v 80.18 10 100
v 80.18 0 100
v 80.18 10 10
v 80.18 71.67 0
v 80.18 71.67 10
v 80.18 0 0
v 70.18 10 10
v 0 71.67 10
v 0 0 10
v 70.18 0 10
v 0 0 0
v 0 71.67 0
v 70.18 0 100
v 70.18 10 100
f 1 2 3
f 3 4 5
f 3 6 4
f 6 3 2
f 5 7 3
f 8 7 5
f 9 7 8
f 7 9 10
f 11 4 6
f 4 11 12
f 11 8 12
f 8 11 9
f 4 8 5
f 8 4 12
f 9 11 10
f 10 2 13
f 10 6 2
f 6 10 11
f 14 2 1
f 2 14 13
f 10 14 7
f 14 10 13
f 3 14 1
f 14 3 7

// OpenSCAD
/* doodle-meta {"version":1,"parameters":{"width":{"label":"Overall width","description":"Changes the body width","unit":"mm","feature":"body_width"},"depth":{"label":"Overall depth","description":"Changes the base depth","unit":"mm","feature":"body_depth"},"height":{"label":"Overall height","description":"Changes the panel height","unit":"mm","feature":"body_height"},"thickness":{"label":"Material thickness","description":"Thickness of the L-profile walls","unit":"mm","feature":"wall_thickness"}},"features":{"body_width":{"kind":"dimension","axis":"x","label":"Overall width"},"body_depth":{"kind":"dimension","axis":"y","label":"Overall depth"},"body_height":{"kind":"dimension","axis":"z","label":"Overall height"},"wall_thickness":{"kind":"dimension","axis":"x","label":"Material thickness"}}} */

// Top-level parameters (allowlist)
width = 80.18;
depth = 71.67;
height = 100.0;
thickness = 10.0;

// Derived sizes (not editable)
eps = 0.01;
panel_x_start = width - thickness;
base_z_end = thickness;

// Hole parameters derived from front view proportions
// Front view maps: X = u * width, Z = (1-v) * height
// Hole 1 (Top Left): center u=0.2724, v=0.1968, size u=0.2988, v=0.1968
h1_cx = 0.2724 * width;
h1_cz = (1 - 0.1968) * height;
h1_w = 0.2988 * width;
h1_h = 0.1968 * height;

// Hole 2 (Center Vertical): center u=0.5362, v=0.4268, size u=0.1173, v=0.3135
h2_cx = 0.5362 * width;
h2_cz = (1 - 0.4268) * height;
h2_w = 0.1173 * width;
h2_h = 0.3135 * height;

// Hole 3 (Bottom Left): center u=0.3269, v=0.6087, size u=0.1732, v=0.4027
h3_cx = 0.3269 * width;
h3_cz = (1 - 0.6087) * height;
h3_w = 0.1732 * width;
h3_h = 0.4027 * height;

// Hole 4 (Bottom Right): center u=0.7472, v=0.6087, size u=0.1369, v=0.3891
h4_cx = 0.7472 * width;
h4_cz = (1 - 0.6087) * height;
h4_w = 0.1369 * width;
h4_h = 0.3891 * height;

// Main design
difference() {
    // Positive Body: L-shape
    // Base: extends from Y=0 to Y=depth, Z=0 to Z=thickness, X=0 to X=width
    // Panel: extends from Y=0 to Y=thickness, Z=0 to Z=height, X=panel_x_start to X=width
    
    // Union of base and panel
    union() {
        // Base
        cube([width, depth, thickness]);
        
        // Panel
        translate([panel_x_start, 0, 0])
            cube([thickness, thickness, height]);
    }
    
    // Subtractive Cutters for holes in the panel
    // The panel is at X in [panel_x_start, width], Y in [0, thickness], Z in [0, height]
    // Holes cut through the panel thickness (along Y axis)
    
    // Hole 1: Top Left
    translate([h1_cx, 0, h1_cz])
        rotate([90, 0, 0])
            cube([h1_w, thickness + 2*eps, h1_h], center=true);
            
    // Hole 2: Center Vertical
    translate([h2_cx, 0, h2_cz])
        rotate([90, 0, 0])
            cube([h2_w, thickness + 2*eps, h2_h], center=true);
            
    // Hole 3: Bottom Left
    translate([h3_cx, 0, h3_cz])
        rotate([90, 0, 0])
            cube([h3_w, thickness + 2*eps, h3_h], center=true);
            
    // Hole 4: Bottom Right
    translate([h4_cx, 0, h4_cz])
        rotate([90, 0, 0])
            cube([h4_w, thickness + 2*eps, h4_h], center=true);
}
